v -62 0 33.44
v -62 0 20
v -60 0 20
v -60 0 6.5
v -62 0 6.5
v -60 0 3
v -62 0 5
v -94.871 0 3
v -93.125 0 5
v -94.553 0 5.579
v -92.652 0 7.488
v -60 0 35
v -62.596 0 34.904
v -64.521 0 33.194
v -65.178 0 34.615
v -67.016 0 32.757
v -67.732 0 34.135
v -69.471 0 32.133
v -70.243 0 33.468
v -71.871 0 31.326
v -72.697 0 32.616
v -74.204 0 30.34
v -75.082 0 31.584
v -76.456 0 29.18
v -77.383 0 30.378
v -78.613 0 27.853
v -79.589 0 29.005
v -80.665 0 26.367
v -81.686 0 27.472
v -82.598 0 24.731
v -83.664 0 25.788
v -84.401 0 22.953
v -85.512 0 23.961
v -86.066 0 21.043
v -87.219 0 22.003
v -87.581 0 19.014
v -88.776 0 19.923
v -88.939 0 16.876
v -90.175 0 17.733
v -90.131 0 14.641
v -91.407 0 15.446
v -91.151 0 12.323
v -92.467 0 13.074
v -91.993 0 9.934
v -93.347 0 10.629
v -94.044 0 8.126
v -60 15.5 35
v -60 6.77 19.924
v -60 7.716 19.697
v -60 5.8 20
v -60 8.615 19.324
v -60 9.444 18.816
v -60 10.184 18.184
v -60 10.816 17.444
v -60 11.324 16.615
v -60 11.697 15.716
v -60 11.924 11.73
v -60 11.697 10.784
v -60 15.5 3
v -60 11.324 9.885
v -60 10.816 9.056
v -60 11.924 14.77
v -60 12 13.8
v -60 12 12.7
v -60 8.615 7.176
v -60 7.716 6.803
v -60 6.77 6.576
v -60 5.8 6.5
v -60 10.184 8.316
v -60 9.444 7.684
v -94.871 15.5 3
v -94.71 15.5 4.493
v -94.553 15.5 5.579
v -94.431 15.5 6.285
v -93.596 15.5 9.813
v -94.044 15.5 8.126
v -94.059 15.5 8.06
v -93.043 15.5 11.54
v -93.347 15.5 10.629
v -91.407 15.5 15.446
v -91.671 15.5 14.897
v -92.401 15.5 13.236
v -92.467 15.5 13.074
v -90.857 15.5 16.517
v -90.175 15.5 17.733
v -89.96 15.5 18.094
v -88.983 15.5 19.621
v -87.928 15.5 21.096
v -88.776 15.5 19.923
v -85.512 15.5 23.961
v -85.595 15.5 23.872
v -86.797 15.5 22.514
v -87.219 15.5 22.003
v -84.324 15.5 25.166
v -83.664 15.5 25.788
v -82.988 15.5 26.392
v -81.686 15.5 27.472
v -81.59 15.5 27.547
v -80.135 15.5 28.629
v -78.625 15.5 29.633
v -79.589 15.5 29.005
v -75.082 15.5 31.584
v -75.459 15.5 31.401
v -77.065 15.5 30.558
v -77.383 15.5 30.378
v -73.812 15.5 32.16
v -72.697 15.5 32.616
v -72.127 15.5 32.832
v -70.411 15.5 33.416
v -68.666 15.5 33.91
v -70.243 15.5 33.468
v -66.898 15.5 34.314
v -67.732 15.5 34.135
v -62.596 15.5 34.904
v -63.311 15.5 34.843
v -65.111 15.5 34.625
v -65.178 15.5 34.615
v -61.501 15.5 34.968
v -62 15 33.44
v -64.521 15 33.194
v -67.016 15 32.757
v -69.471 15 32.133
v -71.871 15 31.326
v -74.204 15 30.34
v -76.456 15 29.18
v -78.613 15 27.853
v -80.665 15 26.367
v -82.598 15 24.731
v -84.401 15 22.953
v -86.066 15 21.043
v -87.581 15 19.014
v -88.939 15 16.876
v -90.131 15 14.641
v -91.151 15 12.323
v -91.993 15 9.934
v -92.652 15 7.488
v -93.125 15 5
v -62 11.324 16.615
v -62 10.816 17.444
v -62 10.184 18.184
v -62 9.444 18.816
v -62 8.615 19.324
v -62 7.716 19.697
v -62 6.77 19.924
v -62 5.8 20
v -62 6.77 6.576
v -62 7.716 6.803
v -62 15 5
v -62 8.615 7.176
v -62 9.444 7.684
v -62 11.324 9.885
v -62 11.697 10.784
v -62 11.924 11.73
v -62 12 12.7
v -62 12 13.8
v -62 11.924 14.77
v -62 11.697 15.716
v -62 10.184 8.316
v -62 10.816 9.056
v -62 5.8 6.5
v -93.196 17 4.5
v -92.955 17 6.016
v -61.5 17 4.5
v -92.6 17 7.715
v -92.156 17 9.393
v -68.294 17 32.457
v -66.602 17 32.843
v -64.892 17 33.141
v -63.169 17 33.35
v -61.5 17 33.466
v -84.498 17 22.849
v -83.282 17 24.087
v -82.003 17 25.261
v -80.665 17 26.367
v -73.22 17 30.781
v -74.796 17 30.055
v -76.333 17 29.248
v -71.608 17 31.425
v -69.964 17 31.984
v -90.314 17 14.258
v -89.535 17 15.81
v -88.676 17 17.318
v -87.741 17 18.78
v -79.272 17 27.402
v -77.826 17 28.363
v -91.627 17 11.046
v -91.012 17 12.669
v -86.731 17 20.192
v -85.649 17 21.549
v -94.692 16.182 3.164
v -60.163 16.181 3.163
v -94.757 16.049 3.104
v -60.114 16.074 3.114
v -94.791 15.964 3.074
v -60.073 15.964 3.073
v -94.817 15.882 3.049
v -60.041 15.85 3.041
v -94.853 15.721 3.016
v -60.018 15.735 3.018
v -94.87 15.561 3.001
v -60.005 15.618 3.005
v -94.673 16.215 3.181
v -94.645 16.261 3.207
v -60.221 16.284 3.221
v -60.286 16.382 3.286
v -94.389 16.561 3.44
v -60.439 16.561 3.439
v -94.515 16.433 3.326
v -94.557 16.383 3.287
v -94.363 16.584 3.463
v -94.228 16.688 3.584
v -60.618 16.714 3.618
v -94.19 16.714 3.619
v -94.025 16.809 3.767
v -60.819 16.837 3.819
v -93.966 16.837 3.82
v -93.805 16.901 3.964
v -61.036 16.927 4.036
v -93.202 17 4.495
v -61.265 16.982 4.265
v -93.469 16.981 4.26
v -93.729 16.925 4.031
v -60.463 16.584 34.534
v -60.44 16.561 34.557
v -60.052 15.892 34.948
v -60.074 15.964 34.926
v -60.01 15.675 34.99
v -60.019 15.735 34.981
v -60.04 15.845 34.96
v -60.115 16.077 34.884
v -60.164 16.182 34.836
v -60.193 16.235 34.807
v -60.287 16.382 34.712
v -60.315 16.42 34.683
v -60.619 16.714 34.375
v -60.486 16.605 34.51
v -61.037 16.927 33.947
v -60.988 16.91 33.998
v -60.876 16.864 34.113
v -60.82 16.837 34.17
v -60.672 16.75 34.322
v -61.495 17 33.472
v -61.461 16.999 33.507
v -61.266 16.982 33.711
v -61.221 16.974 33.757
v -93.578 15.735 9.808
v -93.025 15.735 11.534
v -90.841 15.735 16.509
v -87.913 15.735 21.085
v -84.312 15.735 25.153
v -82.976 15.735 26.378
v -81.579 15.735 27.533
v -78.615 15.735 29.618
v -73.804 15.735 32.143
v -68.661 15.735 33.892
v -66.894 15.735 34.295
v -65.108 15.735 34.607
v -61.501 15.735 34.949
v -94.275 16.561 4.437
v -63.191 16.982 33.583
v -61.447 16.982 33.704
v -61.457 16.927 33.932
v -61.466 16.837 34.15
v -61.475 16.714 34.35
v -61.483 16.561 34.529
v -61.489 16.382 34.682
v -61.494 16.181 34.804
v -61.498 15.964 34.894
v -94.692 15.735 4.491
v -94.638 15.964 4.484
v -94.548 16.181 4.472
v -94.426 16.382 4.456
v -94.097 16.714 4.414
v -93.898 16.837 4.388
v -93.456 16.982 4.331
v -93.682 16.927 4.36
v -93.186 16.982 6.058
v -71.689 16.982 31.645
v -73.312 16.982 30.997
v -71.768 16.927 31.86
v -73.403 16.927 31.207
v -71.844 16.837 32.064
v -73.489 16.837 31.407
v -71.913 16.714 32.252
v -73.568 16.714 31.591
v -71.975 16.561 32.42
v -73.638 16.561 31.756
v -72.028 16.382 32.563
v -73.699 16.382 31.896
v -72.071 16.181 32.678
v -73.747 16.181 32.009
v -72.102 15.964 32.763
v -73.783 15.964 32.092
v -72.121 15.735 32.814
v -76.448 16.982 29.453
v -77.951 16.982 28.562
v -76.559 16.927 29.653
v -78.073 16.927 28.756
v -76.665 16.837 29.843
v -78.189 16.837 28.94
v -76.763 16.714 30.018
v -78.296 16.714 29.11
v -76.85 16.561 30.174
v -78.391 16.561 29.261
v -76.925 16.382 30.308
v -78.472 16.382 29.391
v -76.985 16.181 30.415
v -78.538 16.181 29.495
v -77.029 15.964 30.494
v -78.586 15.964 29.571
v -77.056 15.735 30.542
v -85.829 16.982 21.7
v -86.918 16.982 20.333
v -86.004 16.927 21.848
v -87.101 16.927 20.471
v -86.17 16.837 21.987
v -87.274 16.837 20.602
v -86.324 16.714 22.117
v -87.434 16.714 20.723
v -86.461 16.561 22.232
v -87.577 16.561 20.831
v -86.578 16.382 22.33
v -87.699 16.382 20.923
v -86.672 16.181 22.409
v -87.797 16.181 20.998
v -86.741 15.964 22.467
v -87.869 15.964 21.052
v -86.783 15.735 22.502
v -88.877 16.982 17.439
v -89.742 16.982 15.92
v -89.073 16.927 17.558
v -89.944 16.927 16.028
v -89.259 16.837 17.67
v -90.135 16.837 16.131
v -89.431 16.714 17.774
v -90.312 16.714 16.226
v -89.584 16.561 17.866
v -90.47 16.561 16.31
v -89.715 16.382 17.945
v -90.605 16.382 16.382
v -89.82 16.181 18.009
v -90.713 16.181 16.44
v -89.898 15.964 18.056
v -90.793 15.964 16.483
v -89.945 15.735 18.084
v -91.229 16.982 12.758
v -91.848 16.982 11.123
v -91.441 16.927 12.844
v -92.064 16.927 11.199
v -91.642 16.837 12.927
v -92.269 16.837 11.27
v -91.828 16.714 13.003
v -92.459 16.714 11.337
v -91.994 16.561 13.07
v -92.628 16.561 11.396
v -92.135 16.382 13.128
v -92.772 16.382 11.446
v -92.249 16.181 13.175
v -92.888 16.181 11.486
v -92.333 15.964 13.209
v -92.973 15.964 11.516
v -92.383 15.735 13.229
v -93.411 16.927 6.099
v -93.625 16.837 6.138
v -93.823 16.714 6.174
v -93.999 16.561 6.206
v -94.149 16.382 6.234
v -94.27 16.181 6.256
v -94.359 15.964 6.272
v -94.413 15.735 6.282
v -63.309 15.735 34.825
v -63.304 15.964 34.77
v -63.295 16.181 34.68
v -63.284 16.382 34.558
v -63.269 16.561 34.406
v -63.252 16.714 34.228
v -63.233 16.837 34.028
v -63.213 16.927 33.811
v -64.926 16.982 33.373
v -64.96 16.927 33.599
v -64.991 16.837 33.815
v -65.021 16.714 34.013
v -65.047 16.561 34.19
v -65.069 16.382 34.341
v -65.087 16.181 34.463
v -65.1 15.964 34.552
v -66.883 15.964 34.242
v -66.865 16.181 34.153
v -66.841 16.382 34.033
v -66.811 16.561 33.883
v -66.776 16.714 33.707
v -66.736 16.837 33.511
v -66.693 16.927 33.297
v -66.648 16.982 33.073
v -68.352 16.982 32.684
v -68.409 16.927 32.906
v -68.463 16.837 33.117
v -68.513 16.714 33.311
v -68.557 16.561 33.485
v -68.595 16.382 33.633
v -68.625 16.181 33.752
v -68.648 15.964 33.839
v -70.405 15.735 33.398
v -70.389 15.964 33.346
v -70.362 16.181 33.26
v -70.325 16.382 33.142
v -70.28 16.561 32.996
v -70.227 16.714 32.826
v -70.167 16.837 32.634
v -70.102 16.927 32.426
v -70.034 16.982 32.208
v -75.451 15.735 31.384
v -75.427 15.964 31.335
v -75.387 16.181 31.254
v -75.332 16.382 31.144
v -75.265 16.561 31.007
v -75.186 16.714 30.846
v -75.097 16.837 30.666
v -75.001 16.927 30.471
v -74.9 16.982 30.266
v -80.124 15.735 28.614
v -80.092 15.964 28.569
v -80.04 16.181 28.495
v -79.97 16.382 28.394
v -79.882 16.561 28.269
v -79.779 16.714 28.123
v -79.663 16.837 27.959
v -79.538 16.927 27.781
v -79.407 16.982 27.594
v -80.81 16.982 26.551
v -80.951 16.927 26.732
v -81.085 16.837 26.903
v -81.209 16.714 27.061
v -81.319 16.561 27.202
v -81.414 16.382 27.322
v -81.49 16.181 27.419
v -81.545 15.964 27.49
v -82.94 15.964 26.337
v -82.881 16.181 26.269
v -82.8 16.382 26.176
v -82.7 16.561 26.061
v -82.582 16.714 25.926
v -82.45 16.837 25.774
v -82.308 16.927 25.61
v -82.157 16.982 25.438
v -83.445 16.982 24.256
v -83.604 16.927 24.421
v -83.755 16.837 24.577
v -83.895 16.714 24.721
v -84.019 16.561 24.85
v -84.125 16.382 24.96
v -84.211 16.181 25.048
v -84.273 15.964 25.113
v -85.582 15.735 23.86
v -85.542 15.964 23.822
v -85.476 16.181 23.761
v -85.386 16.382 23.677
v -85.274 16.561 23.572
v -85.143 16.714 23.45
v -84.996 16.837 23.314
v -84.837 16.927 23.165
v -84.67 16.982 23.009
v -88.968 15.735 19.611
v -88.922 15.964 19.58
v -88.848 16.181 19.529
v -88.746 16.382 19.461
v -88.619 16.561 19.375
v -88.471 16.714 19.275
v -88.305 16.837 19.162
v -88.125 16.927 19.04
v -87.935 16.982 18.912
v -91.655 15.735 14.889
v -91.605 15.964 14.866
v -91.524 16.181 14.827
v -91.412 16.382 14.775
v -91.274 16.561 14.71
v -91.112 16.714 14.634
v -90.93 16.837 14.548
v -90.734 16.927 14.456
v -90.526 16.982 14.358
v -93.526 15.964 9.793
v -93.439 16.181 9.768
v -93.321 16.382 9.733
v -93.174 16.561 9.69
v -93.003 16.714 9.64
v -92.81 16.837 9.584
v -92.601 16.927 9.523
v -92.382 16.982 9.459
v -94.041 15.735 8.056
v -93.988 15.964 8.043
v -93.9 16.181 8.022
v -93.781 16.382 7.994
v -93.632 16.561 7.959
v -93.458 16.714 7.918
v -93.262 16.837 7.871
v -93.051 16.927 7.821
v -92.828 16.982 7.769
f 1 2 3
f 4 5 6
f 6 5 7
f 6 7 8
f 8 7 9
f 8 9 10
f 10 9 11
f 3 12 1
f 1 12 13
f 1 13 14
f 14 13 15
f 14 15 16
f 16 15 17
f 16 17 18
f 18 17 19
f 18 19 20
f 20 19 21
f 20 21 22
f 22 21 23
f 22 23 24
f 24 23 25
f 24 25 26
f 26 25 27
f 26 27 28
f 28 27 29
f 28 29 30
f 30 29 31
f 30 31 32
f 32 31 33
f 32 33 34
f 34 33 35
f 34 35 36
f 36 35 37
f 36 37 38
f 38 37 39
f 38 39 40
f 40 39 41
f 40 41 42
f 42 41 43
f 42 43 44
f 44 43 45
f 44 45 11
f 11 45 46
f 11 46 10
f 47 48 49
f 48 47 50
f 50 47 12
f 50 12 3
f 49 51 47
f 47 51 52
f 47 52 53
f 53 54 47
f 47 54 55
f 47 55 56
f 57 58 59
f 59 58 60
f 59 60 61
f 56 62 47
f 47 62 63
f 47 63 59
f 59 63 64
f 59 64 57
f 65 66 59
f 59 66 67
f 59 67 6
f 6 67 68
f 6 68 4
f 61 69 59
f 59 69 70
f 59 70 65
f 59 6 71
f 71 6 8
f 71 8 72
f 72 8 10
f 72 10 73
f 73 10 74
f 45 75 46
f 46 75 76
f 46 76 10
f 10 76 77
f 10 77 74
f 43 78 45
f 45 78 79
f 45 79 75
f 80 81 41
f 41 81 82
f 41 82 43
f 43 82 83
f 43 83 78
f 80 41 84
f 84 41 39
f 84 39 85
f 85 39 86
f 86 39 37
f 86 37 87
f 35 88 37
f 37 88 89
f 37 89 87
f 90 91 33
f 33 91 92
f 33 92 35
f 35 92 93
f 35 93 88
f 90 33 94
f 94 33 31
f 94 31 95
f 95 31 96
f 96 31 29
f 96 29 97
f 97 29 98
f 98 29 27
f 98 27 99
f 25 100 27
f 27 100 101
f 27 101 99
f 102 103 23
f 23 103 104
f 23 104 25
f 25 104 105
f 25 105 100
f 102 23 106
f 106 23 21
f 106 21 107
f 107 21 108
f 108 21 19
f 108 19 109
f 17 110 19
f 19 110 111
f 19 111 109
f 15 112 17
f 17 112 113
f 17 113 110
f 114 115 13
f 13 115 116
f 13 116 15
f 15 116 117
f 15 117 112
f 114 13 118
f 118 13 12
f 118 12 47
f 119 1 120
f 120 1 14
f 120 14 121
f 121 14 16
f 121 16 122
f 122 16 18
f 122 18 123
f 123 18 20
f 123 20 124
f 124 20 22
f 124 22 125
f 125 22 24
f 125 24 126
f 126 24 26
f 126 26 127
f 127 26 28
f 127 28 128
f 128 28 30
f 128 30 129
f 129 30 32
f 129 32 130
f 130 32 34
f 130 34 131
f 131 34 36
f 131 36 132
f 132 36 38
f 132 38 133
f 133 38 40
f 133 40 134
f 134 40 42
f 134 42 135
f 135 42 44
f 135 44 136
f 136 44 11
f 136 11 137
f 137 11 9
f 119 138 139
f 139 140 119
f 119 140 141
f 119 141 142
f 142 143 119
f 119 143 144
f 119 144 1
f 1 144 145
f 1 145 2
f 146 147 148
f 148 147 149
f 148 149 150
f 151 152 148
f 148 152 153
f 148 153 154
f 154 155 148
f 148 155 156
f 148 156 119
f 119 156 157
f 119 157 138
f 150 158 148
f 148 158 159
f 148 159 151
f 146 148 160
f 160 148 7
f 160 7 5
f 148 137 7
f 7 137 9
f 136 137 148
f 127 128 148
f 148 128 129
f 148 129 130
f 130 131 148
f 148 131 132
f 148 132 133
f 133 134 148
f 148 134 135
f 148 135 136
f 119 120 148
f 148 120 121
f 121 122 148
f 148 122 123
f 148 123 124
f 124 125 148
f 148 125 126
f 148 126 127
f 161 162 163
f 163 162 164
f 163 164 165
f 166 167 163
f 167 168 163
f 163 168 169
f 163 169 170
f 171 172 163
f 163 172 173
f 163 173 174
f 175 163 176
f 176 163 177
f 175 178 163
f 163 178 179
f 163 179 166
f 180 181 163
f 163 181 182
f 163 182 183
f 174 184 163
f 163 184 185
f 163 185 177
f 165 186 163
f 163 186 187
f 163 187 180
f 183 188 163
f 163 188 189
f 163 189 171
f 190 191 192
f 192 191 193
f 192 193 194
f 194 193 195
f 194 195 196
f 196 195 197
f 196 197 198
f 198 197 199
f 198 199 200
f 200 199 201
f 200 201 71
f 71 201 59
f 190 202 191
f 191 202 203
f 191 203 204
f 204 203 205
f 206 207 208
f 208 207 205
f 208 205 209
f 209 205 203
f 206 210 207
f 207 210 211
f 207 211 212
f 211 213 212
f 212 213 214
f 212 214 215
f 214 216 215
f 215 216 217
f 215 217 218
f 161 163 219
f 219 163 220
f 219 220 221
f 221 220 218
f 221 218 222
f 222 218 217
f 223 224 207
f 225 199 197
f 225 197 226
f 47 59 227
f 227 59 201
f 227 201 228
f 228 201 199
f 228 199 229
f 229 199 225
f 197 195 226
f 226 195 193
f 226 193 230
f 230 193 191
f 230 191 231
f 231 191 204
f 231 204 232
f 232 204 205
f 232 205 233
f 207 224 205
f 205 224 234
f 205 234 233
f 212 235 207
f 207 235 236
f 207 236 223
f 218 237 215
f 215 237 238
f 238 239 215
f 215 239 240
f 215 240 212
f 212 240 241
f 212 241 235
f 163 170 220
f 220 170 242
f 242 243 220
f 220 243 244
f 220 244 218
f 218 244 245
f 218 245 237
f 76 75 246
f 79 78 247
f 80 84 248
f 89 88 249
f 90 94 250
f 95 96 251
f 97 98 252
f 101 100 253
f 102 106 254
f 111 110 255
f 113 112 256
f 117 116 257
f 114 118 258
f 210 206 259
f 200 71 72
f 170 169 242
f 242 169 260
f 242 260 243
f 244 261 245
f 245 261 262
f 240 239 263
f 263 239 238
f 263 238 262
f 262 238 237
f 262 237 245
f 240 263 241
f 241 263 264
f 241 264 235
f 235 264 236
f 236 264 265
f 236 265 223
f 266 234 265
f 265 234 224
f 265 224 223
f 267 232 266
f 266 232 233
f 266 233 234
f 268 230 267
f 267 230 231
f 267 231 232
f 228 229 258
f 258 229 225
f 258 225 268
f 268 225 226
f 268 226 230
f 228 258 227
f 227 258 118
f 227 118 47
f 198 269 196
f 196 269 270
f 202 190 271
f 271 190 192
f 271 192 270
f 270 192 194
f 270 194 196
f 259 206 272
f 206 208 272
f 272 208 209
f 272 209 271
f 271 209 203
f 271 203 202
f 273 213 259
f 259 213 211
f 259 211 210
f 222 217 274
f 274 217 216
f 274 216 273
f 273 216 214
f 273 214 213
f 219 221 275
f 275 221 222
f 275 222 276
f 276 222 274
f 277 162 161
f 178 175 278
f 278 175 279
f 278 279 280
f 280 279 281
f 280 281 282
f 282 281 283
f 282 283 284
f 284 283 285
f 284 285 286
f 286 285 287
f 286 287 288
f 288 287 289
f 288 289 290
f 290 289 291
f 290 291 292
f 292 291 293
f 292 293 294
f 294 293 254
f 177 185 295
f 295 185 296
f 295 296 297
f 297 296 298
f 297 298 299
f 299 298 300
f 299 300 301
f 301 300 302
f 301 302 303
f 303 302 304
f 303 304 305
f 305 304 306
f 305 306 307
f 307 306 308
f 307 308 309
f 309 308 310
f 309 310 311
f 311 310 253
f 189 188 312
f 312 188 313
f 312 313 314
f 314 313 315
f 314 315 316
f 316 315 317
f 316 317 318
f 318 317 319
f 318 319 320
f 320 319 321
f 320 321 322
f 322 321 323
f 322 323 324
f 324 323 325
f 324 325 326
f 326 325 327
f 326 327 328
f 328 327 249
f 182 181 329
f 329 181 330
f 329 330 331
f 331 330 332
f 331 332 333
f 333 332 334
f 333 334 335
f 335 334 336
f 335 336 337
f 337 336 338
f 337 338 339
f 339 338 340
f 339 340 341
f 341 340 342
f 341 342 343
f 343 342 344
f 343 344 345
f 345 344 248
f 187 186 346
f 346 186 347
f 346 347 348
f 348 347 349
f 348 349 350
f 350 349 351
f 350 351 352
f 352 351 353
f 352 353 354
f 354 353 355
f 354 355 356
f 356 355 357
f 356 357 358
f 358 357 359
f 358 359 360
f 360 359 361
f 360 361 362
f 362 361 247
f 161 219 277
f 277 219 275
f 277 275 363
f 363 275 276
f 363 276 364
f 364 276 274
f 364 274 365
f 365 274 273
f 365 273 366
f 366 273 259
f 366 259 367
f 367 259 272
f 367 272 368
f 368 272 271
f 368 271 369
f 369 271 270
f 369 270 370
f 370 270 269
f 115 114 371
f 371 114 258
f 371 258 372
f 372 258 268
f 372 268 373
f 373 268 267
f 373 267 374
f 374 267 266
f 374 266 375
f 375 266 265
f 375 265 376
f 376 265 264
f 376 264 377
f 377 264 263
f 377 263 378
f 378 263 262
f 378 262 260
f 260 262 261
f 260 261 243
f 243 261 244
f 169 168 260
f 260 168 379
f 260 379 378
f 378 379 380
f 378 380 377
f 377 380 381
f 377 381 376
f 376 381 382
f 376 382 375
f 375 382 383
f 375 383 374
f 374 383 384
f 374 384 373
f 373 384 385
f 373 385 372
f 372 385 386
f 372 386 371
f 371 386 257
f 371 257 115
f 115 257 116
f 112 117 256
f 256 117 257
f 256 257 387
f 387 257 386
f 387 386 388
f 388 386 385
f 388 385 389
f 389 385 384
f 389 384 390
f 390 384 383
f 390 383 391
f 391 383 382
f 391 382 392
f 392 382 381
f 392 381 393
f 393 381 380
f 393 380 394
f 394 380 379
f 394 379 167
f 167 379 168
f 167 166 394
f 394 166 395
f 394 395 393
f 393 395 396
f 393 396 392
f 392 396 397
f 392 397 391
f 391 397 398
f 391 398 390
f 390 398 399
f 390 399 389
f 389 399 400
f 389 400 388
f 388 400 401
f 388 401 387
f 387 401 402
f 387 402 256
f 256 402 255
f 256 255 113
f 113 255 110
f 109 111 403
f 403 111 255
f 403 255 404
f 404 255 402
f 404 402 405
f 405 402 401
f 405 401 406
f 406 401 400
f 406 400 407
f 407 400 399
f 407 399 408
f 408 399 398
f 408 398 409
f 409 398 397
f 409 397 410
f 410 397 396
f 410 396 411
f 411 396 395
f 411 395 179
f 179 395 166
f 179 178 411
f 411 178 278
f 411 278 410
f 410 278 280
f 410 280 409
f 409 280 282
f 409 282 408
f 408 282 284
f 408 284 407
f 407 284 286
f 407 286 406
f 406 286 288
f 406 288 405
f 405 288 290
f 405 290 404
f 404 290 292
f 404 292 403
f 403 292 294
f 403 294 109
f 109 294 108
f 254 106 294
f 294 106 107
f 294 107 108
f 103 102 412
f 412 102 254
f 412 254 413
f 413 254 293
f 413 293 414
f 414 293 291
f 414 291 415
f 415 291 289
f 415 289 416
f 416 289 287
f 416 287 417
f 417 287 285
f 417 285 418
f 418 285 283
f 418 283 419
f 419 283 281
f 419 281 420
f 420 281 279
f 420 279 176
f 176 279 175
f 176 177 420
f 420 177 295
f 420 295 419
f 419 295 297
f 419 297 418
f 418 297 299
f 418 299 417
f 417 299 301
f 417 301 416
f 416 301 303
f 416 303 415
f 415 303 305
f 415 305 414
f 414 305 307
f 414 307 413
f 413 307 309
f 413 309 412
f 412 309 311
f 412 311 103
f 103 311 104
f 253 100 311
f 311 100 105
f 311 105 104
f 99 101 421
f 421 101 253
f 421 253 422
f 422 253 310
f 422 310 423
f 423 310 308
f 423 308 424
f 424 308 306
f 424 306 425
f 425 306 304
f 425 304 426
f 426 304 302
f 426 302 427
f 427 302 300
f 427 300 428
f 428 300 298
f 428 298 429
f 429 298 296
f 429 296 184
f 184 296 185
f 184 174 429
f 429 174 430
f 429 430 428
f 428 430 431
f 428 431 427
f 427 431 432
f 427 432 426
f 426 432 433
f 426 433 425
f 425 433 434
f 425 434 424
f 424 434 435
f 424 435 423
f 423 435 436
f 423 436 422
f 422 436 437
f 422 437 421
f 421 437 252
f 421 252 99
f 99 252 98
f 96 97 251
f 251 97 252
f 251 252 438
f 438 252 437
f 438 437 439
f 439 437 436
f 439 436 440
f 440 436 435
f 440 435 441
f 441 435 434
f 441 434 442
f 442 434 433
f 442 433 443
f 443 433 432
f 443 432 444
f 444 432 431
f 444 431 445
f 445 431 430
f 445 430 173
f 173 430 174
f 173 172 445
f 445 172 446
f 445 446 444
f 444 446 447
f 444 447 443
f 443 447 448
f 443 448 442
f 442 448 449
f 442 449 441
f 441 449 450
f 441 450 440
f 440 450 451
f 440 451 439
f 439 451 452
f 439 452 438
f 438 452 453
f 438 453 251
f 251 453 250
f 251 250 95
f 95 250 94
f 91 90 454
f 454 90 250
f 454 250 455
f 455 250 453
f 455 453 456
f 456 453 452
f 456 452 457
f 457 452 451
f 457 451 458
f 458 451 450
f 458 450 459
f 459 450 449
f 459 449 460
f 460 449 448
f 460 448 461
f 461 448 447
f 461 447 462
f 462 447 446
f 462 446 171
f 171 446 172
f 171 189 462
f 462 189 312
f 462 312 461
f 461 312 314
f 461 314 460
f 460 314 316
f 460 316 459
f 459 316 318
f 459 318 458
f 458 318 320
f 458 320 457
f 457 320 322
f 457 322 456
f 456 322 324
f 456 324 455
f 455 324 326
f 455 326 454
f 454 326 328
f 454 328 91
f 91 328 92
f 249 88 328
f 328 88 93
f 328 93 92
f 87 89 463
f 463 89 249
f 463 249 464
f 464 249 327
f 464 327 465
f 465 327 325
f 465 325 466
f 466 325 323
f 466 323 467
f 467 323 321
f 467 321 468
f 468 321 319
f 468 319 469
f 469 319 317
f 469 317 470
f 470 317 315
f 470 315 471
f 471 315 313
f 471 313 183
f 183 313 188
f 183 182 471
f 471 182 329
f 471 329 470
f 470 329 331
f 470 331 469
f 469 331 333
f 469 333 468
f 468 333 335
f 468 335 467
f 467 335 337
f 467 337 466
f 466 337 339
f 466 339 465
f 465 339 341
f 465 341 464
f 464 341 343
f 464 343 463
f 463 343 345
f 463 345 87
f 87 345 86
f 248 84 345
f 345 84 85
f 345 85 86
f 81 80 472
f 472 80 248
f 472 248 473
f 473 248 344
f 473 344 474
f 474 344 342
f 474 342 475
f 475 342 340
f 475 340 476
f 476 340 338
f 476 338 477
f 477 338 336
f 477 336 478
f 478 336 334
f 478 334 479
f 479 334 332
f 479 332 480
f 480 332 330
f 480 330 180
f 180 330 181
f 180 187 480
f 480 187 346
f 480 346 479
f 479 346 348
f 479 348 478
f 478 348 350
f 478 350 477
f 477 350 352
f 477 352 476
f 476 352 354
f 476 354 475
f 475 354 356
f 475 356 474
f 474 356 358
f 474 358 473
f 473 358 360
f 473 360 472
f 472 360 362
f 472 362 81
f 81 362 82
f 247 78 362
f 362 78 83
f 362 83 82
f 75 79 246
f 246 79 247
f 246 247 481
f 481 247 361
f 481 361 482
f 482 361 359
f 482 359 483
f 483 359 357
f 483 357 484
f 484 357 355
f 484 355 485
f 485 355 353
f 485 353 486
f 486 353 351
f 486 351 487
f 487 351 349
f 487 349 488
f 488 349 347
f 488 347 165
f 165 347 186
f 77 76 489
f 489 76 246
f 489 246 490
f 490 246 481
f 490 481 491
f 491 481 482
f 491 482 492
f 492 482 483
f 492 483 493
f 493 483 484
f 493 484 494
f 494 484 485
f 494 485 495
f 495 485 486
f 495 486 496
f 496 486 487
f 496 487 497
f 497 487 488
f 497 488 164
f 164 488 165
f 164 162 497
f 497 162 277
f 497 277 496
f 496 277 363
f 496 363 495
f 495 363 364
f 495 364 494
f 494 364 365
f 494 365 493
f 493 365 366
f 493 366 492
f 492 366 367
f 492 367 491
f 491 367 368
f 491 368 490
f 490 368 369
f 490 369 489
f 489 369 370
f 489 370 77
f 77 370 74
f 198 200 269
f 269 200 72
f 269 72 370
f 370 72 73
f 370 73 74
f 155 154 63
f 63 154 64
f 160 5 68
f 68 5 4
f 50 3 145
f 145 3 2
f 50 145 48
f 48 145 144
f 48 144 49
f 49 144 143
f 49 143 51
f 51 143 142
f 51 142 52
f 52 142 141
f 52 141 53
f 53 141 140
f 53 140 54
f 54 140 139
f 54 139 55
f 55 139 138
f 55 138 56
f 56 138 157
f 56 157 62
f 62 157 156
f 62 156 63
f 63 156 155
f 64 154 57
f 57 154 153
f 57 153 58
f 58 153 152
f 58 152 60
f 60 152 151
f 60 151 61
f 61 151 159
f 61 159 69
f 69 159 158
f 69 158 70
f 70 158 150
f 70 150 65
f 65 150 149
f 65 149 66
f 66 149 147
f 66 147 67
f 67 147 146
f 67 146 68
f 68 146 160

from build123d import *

# Parameters (mm, degrees)
BOSS_EXTRUDE5_DEPTH = 15
BOSS_EXTRUDE6_DEPTH = 2
FILLET2_R           = 1.5
SKETCH7_W           = 13.5
SKETCH7_H           = 12
CUT_EXTRUDE2_DEPTH  = 5
FILLET3_R           = 6.2


with BuildPart() as part:
    # Sketch4 → Boss-Extrude5 (new body)
    with BuildSketch(Plane(origin=(0, 0, 0), x_dir=(1, 0, 0), z_dir=(0, 1, 0))):
        with BuildLine():
            Line((-60, -3), (-94.871191548, -3))
            ThreePointArc((-94.871191548, -3), (-83.664319132, -25.787593916), (-60, -35))
            Line((-60, -35), (-60, -3))
        make_face()
        with BuildLine():
            Line((-62, -5), (-93.12476415, -5))
            ThreePointArc((-93.12476415, -5), (-82.597547458, -24.730565074), (-62, -33.440245214))
            Line((-62, -33.440245214), (-62, -5))
        make_face(mode=Mode.SUBTRACT)
    extrude(amount=BOSS_EXTRUDE5_DEPTH)

    # Sketch5 → Boss-Extrude6 (add)
    with BuildSketch(Plane(origin=(0, 15, 0), x_dir=(1, 0, 0), z_dir=(0, 1, 0))):
        with BuildLine():
            Line((-60, -3), (-94.871191548, -3))
            ThreePointArc((-94.871191548, -3), (-83.664319132, -25.787593916), (-60, -35))
            Line((-60, -35), (-60, -3))
        make_face()
    extrude(amount=BOSS_EXTRUDE6_DEPTH)

    # Fillet2
    fillet2_edges = [part.edges().sort_by_distance(p)[0] for p in [
        (-60, 17, 19),
        (-77.435595774, 17, 3),
        (-83.664319132, 17, 25.787593916),
    ]]
    fillet(fillet2_edges, radius=FILLET2_R)

    # Sketch7 → Cut-Extrude2 (cut)
    with BuildSketch(Plane(origin=(-60, 0, 0), x_dir=(0, 0, -1), z_dir=(1, 0, 0))):
        with Locations((-13.25, 6)):
            Rectangle(SKETCH7_W, SKETCH7_H)
    extrude(amount=-CUT_EXTRUDE2_DEPTH, mode=Mode.SUBTRACT)

    # Fillet3
    fillet3_edges = [part.edges().sort_by_distance(p)[0] for p in [
        (-61, 12, 20),
        (-61, 12, 6.5),
    ]]
    fillet(fillet3_edges, radius=FILLET3_R)


solid = part.part
